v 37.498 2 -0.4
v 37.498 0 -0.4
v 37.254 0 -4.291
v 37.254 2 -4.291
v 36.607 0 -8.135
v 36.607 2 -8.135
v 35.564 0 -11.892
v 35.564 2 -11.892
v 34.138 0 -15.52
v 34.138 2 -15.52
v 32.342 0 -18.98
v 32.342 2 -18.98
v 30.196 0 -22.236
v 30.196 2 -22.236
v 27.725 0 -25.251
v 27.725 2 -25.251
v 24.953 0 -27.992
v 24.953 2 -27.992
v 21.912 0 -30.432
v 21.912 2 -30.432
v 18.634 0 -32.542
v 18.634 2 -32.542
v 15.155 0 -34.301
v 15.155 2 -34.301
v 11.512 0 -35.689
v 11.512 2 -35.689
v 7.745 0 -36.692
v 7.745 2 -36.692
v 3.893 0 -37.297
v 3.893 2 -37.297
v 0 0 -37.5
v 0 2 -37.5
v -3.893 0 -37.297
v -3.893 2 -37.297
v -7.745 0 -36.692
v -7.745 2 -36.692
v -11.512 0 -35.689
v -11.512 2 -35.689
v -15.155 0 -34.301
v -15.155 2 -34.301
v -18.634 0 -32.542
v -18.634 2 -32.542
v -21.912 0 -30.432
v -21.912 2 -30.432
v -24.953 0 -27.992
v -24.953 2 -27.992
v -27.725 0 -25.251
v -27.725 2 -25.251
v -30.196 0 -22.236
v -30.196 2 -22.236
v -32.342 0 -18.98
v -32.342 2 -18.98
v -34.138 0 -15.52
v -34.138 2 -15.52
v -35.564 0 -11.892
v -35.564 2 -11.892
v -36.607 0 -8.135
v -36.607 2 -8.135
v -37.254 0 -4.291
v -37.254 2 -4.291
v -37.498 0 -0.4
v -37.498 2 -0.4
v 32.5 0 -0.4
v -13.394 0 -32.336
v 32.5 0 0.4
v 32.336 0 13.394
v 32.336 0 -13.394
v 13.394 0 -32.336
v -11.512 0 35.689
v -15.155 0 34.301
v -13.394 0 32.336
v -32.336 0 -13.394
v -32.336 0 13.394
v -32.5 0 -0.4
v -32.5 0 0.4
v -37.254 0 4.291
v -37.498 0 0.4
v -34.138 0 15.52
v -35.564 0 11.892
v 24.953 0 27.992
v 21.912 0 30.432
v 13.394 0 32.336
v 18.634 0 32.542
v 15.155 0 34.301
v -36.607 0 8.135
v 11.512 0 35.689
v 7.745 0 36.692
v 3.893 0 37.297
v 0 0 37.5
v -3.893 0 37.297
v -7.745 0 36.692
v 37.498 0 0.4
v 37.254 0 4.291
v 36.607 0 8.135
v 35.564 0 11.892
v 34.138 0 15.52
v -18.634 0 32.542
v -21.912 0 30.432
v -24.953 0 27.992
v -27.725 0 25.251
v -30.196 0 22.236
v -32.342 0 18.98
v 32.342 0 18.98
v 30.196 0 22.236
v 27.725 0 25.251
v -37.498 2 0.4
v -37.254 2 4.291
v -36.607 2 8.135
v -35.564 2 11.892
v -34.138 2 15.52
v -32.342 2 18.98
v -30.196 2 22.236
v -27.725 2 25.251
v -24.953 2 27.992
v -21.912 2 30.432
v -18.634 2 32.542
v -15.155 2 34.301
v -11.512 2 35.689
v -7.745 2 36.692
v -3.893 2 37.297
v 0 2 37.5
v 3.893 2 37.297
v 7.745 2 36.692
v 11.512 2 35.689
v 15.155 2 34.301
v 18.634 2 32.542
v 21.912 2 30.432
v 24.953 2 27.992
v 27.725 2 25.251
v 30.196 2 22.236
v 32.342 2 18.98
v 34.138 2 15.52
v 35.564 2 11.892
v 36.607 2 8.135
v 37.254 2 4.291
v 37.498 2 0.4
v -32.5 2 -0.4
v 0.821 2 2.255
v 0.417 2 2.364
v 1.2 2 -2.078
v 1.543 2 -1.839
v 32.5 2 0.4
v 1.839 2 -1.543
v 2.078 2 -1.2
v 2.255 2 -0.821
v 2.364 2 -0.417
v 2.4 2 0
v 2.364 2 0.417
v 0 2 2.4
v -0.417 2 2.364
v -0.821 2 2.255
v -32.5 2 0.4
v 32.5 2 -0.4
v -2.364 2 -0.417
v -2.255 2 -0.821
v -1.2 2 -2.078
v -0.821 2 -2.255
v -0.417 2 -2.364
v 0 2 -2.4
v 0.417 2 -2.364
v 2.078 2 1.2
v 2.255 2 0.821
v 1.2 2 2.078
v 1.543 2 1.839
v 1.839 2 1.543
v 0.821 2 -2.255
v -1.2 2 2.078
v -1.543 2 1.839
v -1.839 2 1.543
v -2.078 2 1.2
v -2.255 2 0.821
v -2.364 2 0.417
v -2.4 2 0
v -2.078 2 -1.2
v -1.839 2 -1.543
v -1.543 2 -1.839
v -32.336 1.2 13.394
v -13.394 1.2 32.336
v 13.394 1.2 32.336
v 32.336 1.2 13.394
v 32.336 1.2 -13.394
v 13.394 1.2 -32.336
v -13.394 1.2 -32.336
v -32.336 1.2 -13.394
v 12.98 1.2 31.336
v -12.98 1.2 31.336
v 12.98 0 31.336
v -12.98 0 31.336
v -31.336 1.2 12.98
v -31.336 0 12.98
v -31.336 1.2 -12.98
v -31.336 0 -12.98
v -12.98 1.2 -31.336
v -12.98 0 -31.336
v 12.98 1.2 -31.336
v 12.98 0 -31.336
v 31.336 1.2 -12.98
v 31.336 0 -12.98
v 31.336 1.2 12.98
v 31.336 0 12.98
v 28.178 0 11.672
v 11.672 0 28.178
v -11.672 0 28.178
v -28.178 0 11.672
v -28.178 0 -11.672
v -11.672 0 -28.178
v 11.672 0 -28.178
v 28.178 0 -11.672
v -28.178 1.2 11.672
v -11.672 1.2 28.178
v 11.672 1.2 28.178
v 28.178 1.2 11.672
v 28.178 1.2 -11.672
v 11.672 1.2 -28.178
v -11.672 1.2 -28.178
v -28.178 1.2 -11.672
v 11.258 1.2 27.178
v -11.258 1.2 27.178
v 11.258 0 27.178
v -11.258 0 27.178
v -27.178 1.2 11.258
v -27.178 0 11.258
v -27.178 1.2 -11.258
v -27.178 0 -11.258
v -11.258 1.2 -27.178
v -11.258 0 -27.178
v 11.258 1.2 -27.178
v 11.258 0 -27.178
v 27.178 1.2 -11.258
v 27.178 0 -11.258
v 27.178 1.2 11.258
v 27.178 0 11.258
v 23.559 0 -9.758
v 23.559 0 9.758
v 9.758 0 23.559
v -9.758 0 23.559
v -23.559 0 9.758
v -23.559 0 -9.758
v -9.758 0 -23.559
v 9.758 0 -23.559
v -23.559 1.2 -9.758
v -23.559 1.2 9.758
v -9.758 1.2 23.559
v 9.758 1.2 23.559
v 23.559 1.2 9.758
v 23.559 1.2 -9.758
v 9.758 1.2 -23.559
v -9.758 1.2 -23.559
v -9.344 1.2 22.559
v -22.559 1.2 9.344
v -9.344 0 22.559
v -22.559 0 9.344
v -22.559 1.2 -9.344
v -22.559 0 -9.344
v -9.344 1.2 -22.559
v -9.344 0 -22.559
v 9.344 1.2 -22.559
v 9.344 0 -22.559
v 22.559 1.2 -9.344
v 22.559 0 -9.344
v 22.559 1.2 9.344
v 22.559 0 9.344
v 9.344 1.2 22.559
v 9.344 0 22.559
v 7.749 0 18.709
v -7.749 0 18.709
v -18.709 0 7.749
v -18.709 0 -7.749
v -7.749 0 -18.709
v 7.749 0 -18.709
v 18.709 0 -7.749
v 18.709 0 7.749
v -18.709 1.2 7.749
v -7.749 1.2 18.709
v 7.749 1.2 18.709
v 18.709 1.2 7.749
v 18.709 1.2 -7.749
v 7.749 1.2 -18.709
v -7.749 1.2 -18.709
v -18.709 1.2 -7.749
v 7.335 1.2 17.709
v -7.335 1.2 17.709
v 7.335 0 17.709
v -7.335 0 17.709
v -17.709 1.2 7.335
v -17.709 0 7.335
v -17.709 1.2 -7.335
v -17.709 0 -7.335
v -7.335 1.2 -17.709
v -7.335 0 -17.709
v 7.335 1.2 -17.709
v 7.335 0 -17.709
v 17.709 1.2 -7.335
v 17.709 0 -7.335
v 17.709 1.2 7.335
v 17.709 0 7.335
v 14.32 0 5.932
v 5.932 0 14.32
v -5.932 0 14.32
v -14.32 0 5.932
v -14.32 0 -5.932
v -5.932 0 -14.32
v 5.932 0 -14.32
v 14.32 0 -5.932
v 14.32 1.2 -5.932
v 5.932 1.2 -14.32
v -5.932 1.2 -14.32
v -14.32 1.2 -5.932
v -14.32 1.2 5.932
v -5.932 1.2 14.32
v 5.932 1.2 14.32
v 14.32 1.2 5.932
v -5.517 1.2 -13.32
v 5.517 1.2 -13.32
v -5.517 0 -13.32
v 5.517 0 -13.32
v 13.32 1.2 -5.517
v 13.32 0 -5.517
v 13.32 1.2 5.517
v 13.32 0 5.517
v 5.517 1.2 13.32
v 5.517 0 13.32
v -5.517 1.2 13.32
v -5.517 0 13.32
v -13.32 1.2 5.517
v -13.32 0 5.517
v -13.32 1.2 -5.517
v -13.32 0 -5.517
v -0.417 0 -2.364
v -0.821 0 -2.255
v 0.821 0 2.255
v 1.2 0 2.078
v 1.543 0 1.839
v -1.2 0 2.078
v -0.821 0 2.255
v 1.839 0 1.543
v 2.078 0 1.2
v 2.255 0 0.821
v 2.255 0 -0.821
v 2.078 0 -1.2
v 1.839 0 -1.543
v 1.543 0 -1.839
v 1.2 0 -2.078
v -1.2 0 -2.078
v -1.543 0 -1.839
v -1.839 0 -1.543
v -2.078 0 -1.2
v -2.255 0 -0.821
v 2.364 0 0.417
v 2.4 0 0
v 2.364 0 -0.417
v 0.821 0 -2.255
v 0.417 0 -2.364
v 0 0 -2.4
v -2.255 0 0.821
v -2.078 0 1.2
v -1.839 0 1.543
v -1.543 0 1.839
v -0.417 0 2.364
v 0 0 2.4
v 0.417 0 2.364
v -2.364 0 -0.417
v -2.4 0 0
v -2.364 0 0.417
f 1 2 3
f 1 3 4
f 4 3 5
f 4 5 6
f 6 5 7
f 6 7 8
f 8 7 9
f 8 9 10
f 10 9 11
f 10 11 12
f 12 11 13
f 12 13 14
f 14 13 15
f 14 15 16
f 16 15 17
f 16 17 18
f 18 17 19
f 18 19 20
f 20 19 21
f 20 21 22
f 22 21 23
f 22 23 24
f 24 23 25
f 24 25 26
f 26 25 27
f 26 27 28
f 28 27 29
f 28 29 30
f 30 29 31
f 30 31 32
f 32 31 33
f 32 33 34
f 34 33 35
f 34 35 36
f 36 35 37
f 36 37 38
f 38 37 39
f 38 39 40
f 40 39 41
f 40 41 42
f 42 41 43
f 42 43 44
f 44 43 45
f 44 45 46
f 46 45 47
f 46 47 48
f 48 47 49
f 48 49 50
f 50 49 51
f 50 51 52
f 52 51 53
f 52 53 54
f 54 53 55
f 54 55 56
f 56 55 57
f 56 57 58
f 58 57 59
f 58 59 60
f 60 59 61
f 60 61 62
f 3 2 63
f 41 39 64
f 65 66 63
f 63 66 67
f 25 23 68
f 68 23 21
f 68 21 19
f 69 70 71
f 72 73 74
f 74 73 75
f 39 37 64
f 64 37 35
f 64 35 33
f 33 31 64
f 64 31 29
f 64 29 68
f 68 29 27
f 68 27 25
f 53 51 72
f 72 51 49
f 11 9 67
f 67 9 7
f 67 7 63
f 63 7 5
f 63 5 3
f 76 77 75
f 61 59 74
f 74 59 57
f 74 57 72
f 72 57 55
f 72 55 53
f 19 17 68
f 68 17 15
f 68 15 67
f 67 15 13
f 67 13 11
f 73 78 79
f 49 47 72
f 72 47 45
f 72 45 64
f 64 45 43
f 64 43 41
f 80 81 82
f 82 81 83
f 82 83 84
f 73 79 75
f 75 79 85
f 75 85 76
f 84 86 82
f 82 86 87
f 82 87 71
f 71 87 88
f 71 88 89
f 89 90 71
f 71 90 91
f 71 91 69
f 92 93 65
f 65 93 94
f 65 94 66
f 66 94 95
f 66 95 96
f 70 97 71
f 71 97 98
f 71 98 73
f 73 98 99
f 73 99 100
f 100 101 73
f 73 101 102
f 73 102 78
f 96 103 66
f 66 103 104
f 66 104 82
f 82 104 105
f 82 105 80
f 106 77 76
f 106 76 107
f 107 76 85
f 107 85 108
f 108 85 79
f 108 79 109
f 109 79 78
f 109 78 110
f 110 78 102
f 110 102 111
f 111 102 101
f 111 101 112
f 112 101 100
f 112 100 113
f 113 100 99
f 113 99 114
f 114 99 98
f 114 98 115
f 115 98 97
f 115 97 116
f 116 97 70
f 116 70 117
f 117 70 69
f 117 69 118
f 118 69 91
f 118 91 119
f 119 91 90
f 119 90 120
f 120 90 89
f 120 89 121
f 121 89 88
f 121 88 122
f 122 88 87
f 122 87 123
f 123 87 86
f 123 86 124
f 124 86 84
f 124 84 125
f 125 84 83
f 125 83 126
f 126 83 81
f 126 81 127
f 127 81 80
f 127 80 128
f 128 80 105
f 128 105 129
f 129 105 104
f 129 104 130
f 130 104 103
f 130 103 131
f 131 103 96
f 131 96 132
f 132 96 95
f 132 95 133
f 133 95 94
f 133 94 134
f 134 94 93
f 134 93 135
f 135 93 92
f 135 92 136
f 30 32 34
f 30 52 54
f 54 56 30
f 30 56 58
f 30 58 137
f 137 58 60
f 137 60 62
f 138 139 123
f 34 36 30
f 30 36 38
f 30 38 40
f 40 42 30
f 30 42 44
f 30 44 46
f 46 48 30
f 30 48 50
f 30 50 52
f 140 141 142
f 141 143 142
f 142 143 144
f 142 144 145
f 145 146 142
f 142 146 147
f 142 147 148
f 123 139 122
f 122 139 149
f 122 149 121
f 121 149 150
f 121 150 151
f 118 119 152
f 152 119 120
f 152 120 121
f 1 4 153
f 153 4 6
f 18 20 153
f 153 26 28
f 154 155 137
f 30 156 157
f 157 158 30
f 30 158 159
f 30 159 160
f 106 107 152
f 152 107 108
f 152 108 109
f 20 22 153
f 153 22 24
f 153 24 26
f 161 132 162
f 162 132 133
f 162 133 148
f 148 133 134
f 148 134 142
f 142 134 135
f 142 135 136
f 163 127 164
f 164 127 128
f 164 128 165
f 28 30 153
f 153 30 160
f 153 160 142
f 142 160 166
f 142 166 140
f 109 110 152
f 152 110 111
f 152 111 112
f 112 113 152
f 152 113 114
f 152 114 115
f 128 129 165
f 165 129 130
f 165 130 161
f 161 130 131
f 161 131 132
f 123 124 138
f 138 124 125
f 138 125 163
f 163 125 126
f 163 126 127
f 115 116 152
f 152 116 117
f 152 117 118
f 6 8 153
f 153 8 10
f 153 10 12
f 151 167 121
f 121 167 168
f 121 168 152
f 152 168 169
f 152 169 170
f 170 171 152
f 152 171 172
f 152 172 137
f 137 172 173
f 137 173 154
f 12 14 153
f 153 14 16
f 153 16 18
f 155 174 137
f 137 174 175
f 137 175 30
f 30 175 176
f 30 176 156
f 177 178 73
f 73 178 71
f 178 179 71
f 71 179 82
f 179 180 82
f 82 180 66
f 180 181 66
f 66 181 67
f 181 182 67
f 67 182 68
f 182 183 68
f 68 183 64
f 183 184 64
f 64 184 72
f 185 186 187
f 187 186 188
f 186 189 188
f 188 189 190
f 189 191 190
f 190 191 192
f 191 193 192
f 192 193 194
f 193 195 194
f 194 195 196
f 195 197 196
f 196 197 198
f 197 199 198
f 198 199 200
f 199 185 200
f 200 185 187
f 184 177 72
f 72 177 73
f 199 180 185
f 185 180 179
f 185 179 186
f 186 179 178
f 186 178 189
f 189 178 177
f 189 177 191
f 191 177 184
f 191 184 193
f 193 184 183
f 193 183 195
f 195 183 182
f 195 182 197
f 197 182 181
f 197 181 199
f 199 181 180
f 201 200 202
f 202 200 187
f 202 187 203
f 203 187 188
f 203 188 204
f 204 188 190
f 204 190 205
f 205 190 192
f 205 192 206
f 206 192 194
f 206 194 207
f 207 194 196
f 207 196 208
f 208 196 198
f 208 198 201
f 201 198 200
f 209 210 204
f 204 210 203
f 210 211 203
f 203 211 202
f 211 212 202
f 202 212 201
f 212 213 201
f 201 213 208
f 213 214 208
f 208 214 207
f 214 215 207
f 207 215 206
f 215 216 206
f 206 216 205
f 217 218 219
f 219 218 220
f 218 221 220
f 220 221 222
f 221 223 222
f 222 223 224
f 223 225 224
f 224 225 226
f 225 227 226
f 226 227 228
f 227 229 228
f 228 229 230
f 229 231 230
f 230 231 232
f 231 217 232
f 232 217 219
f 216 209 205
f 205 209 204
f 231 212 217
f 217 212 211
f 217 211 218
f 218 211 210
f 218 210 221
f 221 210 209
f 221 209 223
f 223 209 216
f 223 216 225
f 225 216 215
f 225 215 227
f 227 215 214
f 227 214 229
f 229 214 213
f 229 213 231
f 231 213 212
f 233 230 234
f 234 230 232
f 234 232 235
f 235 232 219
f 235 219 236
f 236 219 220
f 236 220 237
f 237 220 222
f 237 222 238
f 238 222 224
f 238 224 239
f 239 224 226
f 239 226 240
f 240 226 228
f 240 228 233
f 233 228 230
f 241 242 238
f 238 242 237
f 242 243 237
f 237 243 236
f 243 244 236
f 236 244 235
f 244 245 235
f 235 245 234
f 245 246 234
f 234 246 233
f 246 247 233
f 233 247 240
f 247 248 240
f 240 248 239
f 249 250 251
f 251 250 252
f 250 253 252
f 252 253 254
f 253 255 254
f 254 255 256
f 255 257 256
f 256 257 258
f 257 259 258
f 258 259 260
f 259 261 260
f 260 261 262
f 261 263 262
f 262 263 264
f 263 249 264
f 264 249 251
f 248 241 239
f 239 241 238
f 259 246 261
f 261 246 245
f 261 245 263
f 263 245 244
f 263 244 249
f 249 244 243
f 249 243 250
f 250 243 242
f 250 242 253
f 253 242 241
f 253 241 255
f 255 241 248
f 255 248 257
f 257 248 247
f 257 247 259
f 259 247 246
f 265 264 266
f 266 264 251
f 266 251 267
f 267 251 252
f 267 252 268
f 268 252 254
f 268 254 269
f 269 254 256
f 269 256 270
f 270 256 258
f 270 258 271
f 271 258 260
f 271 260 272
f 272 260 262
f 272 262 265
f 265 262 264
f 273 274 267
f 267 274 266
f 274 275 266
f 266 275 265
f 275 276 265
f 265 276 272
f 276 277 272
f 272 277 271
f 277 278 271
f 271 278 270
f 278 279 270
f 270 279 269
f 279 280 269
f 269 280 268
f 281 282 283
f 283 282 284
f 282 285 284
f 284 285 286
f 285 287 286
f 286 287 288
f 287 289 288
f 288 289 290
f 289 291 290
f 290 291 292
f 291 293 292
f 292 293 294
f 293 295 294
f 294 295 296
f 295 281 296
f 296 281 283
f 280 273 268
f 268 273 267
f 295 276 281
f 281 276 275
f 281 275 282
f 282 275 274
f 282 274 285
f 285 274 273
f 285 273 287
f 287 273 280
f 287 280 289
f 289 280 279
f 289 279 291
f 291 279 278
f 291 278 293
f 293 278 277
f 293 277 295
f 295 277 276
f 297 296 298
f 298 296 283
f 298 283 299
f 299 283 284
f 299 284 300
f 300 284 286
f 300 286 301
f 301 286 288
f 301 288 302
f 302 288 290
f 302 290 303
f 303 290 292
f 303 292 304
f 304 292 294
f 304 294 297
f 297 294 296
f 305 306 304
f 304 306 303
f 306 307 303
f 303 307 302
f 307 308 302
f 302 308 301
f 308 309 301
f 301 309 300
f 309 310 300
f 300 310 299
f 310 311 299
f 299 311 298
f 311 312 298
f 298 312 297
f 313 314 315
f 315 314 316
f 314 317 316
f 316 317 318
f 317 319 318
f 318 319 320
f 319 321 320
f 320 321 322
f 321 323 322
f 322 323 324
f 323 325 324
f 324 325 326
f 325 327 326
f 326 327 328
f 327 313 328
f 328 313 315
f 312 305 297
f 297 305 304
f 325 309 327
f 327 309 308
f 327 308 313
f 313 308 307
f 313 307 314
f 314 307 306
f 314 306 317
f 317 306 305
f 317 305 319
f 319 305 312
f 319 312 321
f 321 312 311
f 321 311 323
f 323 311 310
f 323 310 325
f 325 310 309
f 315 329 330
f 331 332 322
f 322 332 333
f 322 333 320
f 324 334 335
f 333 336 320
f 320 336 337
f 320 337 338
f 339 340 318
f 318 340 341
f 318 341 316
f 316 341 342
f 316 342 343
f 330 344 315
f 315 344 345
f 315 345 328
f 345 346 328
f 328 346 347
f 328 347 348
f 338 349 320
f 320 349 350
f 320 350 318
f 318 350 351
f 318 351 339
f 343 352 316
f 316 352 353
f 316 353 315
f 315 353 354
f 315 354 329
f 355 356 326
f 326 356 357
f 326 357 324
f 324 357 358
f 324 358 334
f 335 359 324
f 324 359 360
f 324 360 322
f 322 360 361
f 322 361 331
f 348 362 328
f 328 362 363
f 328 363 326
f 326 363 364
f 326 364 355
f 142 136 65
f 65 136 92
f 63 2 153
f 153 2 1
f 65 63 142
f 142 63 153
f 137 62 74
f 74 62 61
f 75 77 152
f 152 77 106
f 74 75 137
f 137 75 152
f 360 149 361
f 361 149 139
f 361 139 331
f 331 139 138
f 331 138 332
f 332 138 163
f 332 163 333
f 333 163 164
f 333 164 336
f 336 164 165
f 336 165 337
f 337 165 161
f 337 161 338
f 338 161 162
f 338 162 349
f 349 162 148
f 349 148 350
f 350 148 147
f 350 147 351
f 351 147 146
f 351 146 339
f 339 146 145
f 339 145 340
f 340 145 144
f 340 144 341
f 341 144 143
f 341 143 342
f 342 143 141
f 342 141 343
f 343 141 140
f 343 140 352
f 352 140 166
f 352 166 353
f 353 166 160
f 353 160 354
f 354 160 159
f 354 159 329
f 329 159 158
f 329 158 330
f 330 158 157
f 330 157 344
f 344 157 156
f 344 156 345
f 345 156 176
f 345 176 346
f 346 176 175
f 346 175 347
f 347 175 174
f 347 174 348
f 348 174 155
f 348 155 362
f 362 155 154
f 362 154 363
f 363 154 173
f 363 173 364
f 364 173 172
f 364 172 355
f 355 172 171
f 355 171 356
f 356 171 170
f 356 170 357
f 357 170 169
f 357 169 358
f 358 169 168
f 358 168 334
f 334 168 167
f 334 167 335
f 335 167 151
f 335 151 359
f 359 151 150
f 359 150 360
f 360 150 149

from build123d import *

# Parameters (mm, degrees)
SKETCH_3_R          = 37.5
EXTRUDE_1_DEPTH     = 2
CUT_EXTRUDE_5_DEPTH = 1.2
SKETCH_4_W          = 5
SKETCH_4_H          = 0.8
CUT_EXTRUDE_6_DEPTH = 54.070707551
SKETCH_5_R          = 2.4
CUT_EXTRUDE_7_DEPTH = 54.069200107


with BuildPart() as part:
    # 스케치3 → 보스-돌출1 (new body)
    with BuildSketch(Plane(origin=(0, 0, 0), x_dir=(1, 0, 0), z_dir=(0, 1, 0))):
        Circle(SKETCH_3_R)
    extrude(amount=EXTRUDE_1_DEPTH)

    # 스케치1 → 컷-돌출5 (cut)
    # profile 1 of 5: a face of its own
    with BuildSketch(Plane(origin=(0, 0, 0), x_dir=(1, 0, 0), z_dir=(0, 1, 0))):
        Polygon((-13.393920133, -32.335783638), (13.393920133, -32.335783638), (32.335783638, -13.393920133), (32.335783638, 13.393920133), (13.393920133, 32.335783638), (-13.393920133, 32.335783638), (-32.335783638, 13.393920133), (-32.335783638, -13.393920133), align=None)
        Polygon((31.335783638, -12.97970657), (12.97970657, -31.335783638), (-12.97970657, -31.335783638), (-31.335783638, -12.97970657), (-31.335783638, 12.97970657), (-12.97970657, 31.335783638), (12.97970657, 31.335783638), (31.335783638, 12.97970657), align=None, mode=Mode.SUBTRACT)
    # profile 2 of 5: a face of its own
    with BuildSketch(Plane(origin=(0, 0, 0), x_dir=(1, 0, 0), z_dir=(0, 1, 0))):
        Polygon((-11.671844687, -28.178325742), (11.671844687, -28.178325742), (28.178325742, -11.671844687), (28.178325742, 11.671844687), (11.671844687, 28.178325742), (-11.671844687, 28.178325742), (-28.178325742, 11.671844687), (-28.178325742, -11.671844687), align=None)
        Polygon((27.178325742, -11.257631125), (11.257631125, -27.178325742), (-11.257631125, -27.178325742), (-27.178325742, -11.257631125), (-27.178325742, 11.257631125), (-11.257631125, 27.178325742), (11.257631125, 27.178325742), (27.178325742, 11.257631125), align=None, mode=Mode.SUBTRACT)
    # profile 3 of 5: a face of its own
    with BuildSketch(Plane(origin=(0, 0, 0), x_dir=(1, 0, 0), z_dir=(0, 1, 0))):
        Polygon((-23.558928079, -9.758427525), (-9.758427525, -23.558928079), (9.758427525, -23.558928079), (23.558928079, -9.758427525), (23.558928079, 9.758427525), (9.758427525, 23.558928079), (-9.758427525, 23.558928079), (-23.558928079, 9.758427525), align=None)
        Polygon((9.344213963, -22.558928079), (-9.344213963, -22.558928079), (-22.558928079, -9.344213963), (-22.558928079, 9.344213963), (-9.344213963, 22.558928079), (9.344213963, 22.558928079), (22.558928079, 9.344213963), (22.558928079, -9.344213963), align=None, mode=Mode.SUBTRACT)
    # profile 4 of 5: a face of its own
    with BuildSketch(Plane(origin=(0, 0, 0), x_dir=(1, 0, 0), z_dir=(0, 1, 0))):
        Polygon((-7.749339505, -18.708560533), (7.749339505, -18.708560533), (18.708560533, -7.749339505), (18.708560533, 7.749339505), (7.749339505, 18.708560533), (-7.749339505, 18.708560533), (-18.708560533, 7.749339505), (-18.708560533, -7.749339505), align=None)
        Polygon((17.708560533, -7.335125943), (7.335125943, -17.708560533), (-7.335125943, -17.708560533), (-17.708560533, -7.335125943), (-17.708560533, 7.335125943), (-7.335125943, 17.708560533), (7.335125943, 17.708560533), (17.708560533, 7.335125943), align=None, mode=Mode.SUBTRACT)
    # profile 5 of 5: a face of its own
    with BuildSketch(Plane(origin=(0, 0, 0), x_dir=(1, 0, 0), z_dir=(0, 1, 0))):
        Polygon((5.931593202, 14.320132754), (-5.931593202, 14.320132754), (-14.320132754, 5.931593202), (-14.320132754, -5.931593202), (-5.931593202, -14.320132754), (5.931593202, -14.320132754), (14.320132754, -5.931593202), (14.320132754, 5.931593202), align=None)
        Polygon((-13.320132754, 5.517379639), (-5.517379639, 13.320132754), (5.517379639, 13.320132754), (13.320132754, 5.517379639), (13.320132754, -5.517379639), (5.517379639, -13.320132754), (-5.517379639, -13.320132754), (-13.320132754, -5.517379639), align=None, mode=Mode.SUBTRACT)
    extrude(amount=CUT_EXTRUDE_5_DEPTH, mode=Mode.SUBTRACT)

    # 스케치4 → 컷-돌출6 (cut, through all)
    with BuildSketch(Plane(origin=(0, 2, 0), x_dir=(1, 0, 0), z_dir=(0, 1, 0))):
        with Locations((-35, 0)):
            Rectangle(SKETCH_4_W, SKETCH_4_H)
        with Locations((35, 0)):
            Rectangle(SKETCH_4_W, SKETCH_4_H)
    extrude(amount=-CUT_EXTRUDE_6_DEPTH, mode=Mode.SUBTRACT)

    # 스케치5 → 컷-돌출7 (cut, through all)
    with BuildSketch(Plane(origin=(0, 2, 0), x_dir=(1, 0, 0), z_dir=(0, 1, 0))):
        Circle(SKETCH_5_R)
    extrude(amount=-CUT_EXTRUDE_7_DEPTH, mode=Mode.SUBTRACT)


solid = part.part
